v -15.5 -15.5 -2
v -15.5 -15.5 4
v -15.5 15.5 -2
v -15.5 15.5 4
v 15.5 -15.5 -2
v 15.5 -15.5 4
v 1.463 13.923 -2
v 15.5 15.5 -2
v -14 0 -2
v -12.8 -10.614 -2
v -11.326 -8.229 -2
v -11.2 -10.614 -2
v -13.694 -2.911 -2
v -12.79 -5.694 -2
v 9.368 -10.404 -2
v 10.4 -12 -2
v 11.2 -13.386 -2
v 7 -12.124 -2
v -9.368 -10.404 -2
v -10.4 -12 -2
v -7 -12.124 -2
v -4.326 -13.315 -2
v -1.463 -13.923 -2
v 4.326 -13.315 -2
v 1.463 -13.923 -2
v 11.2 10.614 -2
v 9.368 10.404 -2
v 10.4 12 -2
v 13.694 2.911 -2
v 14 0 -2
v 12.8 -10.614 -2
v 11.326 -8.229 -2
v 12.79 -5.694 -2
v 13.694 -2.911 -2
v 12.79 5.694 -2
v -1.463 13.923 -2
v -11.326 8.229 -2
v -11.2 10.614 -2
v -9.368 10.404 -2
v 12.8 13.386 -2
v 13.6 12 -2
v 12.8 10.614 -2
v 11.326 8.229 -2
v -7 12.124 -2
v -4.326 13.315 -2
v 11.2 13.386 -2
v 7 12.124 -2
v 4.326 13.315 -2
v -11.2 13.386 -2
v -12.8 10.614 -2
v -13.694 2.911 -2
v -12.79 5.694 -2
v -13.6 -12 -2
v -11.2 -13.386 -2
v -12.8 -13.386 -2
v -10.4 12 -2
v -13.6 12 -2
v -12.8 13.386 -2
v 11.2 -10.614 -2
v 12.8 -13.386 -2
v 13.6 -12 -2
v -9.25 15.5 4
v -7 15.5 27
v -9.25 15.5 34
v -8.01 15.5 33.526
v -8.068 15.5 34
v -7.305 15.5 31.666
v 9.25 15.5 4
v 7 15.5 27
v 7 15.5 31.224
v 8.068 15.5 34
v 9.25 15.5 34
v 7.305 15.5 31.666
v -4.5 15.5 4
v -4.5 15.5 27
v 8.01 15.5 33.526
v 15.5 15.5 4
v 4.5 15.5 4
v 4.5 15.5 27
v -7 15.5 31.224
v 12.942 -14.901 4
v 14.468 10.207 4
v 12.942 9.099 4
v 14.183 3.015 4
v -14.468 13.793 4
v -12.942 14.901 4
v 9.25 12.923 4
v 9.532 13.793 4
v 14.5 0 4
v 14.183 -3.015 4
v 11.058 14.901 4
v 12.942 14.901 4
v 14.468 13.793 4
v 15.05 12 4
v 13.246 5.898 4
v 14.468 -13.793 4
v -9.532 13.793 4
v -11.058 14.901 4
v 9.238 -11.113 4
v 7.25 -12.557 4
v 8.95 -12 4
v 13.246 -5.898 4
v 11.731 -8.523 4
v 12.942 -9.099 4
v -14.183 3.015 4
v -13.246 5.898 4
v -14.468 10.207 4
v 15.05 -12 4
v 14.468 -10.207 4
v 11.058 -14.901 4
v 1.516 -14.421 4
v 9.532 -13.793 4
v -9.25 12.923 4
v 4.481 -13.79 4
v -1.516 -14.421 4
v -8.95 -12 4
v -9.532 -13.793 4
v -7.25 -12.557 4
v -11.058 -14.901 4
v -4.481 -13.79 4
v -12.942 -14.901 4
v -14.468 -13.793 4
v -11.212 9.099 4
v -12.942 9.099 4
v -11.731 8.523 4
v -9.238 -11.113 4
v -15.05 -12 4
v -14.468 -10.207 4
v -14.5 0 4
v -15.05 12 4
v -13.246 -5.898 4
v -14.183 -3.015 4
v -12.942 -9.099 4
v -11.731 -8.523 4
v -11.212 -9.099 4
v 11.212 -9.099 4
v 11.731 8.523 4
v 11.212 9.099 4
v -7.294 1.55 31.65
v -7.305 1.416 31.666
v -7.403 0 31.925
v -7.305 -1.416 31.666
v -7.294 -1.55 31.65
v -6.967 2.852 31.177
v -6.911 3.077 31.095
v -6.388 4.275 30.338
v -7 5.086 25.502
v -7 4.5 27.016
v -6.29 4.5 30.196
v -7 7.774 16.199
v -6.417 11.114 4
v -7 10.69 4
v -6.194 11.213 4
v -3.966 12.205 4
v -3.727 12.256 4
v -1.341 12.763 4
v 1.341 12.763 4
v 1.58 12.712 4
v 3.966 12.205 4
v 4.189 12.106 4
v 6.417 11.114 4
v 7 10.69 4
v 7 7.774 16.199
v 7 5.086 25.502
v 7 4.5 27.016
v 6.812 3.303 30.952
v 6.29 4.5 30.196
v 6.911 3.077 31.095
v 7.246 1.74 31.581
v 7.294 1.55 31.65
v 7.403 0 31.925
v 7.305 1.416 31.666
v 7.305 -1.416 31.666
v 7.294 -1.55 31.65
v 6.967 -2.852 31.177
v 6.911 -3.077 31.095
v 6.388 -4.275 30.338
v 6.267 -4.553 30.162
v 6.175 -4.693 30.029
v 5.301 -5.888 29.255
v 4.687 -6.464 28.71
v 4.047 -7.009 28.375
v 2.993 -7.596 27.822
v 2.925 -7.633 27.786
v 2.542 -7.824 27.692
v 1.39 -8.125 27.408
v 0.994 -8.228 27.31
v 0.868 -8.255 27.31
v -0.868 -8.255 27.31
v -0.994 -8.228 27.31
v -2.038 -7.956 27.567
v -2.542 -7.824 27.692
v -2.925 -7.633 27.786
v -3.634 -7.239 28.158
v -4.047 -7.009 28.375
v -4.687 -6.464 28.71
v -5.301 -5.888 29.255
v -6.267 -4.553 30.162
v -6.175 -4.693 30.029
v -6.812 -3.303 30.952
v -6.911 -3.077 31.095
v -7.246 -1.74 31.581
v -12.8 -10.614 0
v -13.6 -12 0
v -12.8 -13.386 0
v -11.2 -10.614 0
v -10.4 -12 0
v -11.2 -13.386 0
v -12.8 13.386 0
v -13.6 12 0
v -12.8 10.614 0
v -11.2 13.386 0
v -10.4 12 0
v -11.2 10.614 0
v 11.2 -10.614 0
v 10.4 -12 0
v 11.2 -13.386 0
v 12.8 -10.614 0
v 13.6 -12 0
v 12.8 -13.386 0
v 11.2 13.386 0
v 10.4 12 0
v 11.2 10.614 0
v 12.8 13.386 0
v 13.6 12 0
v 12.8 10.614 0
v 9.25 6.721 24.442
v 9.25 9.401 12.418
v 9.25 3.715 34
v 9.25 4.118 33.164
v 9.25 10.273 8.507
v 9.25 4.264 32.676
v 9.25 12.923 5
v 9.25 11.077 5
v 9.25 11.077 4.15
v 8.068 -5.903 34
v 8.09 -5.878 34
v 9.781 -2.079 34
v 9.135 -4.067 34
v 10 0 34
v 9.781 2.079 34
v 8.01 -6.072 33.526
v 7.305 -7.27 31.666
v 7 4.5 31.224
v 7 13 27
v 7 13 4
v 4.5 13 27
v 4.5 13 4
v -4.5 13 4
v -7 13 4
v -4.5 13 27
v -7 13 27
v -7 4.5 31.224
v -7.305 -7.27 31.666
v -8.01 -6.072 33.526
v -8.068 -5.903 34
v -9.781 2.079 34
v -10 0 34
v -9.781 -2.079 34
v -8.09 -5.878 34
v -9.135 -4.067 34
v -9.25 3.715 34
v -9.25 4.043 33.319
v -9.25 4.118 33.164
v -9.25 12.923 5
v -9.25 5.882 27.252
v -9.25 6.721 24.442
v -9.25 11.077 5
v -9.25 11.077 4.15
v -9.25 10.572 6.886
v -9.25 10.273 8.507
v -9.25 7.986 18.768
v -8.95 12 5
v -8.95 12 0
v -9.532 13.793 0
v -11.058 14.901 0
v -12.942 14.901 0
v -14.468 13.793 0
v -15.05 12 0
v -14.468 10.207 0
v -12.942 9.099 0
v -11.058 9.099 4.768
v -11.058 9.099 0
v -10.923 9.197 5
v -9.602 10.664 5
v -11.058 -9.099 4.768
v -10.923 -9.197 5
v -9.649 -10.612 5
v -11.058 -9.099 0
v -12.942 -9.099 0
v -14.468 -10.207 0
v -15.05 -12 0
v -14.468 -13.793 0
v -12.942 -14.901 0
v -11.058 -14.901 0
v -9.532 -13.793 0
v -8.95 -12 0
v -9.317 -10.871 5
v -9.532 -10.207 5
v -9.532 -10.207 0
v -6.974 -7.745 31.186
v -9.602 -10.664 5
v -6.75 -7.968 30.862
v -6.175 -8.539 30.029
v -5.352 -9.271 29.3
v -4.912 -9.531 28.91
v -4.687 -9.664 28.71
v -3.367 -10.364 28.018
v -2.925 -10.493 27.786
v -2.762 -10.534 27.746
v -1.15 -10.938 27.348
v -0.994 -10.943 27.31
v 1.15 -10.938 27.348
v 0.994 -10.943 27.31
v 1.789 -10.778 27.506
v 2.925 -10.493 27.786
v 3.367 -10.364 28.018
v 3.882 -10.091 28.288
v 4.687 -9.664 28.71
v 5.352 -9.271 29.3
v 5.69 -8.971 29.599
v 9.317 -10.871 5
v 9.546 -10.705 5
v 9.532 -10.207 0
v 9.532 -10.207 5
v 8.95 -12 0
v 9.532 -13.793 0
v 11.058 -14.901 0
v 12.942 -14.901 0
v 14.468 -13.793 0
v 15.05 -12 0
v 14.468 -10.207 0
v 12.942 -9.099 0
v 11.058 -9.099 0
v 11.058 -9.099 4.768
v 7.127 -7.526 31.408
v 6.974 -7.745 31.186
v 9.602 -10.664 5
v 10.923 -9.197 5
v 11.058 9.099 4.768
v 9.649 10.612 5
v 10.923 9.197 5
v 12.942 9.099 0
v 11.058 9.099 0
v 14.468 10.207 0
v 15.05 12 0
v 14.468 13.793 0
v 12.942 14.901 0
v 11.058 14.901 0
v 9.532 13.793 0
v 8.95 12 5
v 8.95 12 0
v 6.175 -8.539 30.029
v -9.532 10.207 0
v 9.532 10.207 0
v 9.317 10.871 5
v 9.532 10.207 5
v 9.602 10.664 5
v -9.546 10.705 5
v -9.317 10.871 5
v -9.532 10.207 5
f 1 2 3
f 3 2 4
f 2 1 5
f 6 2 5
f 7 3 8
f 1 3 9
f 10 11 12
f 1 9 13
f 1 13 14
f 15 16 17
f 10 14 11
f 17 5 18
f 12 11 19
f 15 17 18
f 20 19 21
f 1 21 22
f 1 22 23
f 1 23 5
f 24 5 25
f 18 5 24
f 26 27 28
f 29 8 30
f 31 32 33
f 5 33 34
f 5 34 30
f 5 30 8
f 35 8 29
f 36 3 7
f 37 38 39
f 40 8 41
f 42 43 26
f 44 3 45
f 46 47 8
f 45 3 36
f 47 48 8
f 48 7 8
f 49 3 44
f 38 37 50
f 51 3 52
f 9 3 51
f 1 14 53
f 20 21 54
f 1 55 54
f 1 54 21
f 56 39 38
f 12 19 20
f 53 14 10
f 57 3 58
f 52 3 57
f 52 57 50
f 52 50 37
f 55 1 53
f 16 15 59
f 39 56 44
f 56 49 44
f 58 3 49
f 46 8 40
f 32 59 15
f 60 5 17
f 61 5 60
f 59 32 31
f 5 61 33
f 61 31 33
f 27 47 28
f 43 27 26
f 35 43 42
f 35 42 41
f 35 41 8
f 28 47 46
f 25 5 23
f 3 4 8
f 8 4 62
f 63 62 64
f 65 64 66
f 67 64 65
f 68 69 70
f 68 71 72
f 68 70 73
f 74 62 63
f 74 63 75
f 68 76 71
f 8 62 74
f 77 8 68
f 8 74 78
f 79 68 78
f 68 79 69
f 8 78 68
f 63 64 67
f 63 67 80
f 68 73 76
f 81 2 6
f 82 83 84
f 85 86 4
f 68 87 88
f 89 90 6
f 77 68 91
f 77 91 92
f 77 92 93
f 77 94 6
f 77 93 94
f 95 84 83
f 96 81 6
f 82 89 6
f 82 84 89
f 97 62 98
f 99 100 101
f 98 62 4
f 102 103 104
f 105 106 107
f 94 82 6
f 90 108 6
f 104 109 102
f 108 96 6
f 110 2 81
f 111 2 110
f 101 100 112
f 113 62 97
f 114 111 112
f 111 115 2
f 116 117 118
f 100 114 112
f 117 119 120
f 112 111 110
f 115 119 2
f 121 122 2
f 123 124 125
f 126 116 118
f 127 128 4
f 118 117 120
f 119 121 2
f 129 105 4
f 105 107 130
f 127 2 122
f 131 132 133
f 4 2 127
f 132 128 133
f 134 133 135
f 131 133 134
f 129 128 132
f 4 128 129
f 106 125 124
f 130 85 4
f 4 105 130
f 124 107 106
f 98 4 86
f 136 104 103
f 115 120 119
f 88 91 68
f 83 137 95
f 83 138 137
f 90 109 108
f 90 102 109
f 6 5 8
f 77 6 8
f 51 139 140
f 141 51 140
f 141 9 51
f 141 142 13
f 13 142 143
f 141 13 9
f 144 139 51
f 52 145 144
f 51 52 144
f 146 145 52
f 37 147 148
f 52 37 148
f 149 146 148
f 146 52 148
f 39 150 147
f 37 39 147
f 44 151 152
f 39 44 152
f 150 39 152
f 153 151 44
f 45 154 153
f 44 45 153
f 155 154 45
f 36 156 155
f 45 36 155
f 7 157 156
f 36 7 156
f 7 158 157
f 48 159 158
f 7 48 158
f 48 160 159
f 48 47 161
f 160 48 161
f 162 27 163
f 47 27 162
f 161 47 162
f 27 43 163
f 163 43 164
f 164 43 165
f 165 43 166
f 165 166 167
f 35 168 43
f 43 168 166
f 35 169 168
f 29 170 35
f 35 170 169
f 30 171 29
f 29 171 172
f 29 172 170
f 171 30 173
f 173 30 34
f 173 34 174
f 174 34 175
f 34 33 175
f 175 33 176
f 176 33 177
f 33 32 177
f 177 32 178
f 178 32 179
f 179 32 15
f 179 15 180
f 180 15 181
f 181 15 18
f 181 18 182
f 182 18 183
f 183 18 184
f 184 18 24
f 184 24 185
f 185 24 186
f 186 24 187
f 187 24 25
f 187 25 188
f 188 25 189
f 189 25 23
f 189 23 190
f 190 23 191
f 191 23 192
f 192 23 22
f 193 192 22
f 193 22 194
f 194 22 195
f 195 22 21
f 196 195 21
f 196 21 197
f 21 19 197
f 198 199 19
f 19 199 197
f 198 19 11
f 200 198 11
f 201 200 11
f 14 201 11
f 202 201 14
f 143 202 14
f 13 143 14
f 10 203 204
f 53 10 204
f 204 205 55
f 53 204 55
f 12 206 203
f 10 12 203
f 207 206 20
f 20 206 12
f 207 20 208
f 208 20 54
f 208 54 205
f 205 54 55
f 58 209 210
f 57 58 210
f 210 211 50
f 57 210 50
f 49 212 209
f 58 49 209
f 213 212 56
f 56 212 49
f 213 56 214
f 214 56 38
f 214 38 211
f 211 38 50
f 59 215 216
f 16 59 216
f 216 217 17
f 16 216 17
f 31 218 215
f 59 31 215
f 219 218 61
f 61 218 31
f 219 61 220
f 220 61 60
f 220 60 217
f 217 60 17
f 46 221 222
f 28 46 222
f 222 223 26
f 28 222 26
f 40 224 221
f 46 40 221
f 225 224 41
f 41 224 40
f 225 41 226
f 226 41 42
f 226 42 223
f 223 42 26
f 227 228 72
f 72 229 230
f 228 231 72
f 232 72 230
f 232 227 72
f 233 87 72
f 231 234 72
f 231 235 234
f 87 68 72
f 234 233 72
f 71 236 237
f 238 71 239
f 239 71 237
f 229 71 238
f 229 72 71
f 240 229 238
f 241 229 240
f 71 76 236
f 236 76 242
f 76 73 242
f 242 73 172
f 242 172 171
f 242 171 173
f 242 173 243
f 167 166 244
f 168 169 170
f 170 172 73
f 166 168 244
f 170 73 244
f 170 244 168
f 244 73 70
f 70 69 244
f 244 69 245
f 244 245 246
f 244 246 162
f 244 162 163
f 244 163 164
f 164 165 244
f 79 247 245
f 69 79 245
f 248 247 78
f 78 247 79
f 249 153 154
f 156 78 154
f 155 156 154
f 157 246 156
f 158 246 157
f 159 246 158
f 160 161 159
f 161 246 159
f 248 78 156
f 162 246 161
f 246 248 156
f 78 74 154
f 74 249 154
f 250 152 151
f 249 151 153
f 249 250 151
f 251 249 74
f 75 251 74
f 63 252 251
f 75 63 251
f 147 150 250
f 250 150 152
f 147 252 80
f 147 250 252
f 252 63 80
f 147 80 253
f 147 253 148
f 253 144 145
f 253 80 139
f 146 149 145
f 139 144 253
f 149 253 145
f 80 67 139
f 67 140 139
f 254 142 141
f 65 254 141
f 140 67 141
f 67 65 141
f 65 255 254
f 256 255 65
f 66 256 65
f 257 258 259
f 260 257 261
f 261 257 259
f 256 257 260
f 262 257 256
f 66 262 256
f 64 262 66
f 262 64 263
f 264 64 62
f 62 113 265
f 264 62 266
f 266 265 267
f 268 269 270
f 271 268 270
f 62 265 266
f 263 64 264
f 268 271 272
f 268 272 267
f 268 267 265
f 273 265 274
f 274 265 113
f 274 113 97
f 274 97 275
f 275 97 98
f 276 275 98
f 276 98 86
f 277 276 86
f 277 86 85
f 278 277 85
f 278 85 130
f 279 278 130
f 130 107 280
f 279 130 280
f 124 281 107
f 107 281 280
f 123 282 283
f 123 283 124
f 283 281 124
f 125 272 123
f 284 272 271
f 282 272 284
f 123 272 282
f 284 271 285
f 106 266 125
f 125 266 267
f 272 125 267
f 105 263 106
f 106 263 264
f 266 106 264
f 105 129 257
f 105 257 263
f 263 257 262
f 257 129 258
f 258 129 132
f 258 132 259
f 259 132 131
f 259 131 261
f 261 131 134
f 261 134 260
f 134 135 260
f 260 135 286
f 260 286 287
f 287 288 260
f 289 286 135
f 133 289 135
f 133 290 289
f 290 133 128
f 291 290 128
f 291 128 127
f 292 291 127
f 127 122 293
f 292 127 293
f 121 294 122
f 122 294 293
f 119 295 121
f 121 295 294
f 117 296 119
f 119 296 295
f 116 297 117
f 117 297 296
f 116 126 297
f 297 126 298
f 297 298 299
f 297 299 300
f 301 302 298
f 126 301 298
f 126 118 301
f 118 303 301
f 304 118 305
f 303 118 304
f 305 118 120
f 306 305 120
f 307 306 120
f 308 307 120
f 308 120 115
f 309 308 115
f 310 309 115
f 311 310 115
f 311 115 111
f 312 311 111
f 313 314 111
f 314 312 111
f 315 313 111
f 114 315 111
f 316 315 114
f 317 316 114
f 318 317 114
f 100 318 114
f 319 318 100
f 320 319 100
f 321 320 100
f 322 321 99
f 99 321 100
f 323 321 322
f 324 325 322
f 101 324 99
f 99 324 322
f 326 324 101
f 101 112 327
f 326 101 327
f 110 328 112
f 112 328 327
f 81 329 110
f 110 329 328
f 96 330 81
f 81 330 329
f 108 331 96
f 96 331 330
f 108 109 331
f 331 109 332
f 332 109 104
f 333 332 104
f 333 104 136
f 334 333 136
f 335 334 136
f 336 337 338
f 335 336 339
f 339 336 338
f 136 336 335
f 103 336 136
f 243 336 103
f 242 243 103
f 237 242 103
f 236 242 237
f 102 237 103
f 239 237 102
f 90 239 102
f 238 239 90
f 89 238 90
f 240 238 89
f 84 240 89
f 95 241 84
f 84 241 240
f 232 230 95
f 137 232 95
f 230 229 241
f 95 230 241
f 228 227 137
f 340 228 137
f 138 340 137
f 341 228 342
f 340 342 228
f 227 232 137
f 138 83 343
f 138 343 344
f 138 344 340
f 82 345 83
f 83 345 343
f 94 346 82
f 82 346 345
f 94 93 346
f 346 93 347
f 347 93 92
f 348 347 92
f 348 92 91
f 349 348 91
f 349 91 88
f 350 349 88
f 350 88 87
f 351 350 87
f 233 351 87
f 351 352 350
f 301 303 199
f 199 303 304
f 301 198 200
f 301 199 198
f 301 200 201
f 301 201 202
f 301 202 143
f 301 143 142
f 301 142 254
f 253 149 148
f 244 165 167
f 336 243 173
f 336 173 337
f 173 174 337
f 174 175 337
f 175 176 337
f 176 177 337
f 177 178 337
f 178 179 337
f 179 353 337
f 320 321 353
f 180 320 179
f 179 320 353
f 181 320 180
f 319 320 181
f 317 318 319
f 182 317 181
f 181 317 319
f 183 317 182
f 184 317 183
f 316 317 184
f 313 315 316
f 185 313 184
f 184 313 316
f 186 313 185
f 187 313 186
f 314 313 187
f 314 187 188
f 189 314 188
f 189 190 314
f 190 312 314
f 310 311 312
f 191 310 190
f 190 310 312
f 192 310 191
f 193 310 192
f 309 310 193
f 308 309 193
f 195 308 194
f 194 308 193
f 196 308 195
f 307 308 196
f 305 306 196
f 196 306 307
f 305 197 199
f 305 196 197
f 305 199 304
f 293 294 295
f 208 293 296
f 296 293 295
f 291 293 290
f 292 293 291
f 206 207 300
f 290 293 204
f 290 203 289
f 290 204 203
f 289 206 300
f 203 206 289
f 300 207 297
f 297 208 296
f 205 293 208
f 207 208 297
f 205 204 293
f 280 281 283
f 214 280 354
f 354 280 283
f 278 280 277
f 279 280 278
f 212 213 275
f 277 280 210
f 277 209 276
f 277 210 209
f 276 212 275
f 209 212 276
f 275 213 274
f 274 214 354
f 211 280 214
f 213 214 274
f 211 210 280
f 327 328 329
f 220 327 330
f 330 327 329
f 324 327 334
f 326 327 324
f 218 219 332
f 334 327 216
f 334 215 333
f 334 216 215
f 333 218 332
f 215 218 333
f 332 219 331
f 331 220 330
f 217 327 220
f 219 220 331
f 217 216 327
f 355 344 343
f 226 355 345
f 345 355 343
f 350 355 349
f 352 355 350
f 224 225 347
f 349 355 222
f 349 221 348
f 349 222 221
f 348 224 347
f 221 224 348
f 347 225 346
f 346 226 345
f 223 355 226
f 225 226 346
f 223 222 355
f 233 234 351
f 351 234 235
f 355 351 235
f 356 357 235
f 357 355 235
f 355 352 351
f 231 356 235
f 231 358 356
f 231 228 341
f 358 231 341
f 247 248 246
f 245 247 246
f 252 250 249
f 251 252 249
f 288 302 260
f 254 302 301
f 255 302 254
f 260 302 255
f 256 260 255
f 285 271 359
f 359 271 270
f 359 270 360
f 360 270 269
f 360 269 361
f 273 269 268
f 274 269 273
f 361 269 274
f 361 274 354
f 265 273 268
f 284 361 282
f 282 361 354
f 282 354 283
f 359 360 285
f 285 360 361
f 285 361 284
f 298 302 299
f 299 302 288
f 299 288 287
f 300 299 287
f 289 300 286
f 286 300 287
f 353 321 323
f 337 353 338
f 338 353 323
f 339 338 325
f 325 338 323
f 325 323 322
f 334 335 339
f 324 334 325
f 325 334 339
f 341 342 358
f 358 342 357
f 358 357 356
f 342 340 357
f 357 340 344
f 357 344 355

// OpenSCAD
module base()
{
	translate ([-15.5, -15.5, -2]){
		cube([31,31,6]);
	}

	translate ([0, 0, 4]){
		cylinder(r1 = 29/2, r2 = 20/2, h = 30);
	}
	translate ([-9.25, 0, 4]){
		cube([18.5,15.5,30]);
	}
}



module fusor()
{
	translate([0, 0, 35.5])
	rotate ([90, 0, 0]){
		cylinder(r=16.5/2, h=40, $f=100, center = true);
	}
}

union(){

//Guias para el soporte
	translate ([-7, 13, 4]){
		cube([2.5,2.5,23]);
	}

	translate ([4.5, 13, 4]){
		cube([2.5,2.5,23]);
	}

difference(){

	base();
	fusor();

//Huecos para los tornillos que sujetan el ventilador
	translate ([-12, -12, 0]){
		cylinder(r=6.1/2, h=5, $f=6);
	translate([0,0,-3])
		cylinder(r=3.2/2, h=3, $f=100);
	}

	translate ([-12, 12, 0]){
		cylinder(r=6.1/2, h=5, $f=6);
	translate([0,0,-3])
		cylinder(r=3.2/2, h=3, $f=100);
	}


	translate ([12, 12, 0]){
		cylinder(r=6.1/2, h=5, $f=6);
	translate([0,0,-3])
		cylinder(r=3.2/2, h=3, $f=100);
	}

	translate ([12, -12, 0]){
		cylinder(r=6.1/2, h=5, $f=6);
	translate([0,0,-3])
		cylinder(r=3.2/2, h=3, $f=100);
	}

//Canal para la ventilación
	translate ([0, 0, -2]){
		cylinder(r1 = 28/2, r2 = 14/2, h = 36);
	}

	translate ([-7, 4.5, 4]){
		cube([14,13,50]);
	}

}
}

	
